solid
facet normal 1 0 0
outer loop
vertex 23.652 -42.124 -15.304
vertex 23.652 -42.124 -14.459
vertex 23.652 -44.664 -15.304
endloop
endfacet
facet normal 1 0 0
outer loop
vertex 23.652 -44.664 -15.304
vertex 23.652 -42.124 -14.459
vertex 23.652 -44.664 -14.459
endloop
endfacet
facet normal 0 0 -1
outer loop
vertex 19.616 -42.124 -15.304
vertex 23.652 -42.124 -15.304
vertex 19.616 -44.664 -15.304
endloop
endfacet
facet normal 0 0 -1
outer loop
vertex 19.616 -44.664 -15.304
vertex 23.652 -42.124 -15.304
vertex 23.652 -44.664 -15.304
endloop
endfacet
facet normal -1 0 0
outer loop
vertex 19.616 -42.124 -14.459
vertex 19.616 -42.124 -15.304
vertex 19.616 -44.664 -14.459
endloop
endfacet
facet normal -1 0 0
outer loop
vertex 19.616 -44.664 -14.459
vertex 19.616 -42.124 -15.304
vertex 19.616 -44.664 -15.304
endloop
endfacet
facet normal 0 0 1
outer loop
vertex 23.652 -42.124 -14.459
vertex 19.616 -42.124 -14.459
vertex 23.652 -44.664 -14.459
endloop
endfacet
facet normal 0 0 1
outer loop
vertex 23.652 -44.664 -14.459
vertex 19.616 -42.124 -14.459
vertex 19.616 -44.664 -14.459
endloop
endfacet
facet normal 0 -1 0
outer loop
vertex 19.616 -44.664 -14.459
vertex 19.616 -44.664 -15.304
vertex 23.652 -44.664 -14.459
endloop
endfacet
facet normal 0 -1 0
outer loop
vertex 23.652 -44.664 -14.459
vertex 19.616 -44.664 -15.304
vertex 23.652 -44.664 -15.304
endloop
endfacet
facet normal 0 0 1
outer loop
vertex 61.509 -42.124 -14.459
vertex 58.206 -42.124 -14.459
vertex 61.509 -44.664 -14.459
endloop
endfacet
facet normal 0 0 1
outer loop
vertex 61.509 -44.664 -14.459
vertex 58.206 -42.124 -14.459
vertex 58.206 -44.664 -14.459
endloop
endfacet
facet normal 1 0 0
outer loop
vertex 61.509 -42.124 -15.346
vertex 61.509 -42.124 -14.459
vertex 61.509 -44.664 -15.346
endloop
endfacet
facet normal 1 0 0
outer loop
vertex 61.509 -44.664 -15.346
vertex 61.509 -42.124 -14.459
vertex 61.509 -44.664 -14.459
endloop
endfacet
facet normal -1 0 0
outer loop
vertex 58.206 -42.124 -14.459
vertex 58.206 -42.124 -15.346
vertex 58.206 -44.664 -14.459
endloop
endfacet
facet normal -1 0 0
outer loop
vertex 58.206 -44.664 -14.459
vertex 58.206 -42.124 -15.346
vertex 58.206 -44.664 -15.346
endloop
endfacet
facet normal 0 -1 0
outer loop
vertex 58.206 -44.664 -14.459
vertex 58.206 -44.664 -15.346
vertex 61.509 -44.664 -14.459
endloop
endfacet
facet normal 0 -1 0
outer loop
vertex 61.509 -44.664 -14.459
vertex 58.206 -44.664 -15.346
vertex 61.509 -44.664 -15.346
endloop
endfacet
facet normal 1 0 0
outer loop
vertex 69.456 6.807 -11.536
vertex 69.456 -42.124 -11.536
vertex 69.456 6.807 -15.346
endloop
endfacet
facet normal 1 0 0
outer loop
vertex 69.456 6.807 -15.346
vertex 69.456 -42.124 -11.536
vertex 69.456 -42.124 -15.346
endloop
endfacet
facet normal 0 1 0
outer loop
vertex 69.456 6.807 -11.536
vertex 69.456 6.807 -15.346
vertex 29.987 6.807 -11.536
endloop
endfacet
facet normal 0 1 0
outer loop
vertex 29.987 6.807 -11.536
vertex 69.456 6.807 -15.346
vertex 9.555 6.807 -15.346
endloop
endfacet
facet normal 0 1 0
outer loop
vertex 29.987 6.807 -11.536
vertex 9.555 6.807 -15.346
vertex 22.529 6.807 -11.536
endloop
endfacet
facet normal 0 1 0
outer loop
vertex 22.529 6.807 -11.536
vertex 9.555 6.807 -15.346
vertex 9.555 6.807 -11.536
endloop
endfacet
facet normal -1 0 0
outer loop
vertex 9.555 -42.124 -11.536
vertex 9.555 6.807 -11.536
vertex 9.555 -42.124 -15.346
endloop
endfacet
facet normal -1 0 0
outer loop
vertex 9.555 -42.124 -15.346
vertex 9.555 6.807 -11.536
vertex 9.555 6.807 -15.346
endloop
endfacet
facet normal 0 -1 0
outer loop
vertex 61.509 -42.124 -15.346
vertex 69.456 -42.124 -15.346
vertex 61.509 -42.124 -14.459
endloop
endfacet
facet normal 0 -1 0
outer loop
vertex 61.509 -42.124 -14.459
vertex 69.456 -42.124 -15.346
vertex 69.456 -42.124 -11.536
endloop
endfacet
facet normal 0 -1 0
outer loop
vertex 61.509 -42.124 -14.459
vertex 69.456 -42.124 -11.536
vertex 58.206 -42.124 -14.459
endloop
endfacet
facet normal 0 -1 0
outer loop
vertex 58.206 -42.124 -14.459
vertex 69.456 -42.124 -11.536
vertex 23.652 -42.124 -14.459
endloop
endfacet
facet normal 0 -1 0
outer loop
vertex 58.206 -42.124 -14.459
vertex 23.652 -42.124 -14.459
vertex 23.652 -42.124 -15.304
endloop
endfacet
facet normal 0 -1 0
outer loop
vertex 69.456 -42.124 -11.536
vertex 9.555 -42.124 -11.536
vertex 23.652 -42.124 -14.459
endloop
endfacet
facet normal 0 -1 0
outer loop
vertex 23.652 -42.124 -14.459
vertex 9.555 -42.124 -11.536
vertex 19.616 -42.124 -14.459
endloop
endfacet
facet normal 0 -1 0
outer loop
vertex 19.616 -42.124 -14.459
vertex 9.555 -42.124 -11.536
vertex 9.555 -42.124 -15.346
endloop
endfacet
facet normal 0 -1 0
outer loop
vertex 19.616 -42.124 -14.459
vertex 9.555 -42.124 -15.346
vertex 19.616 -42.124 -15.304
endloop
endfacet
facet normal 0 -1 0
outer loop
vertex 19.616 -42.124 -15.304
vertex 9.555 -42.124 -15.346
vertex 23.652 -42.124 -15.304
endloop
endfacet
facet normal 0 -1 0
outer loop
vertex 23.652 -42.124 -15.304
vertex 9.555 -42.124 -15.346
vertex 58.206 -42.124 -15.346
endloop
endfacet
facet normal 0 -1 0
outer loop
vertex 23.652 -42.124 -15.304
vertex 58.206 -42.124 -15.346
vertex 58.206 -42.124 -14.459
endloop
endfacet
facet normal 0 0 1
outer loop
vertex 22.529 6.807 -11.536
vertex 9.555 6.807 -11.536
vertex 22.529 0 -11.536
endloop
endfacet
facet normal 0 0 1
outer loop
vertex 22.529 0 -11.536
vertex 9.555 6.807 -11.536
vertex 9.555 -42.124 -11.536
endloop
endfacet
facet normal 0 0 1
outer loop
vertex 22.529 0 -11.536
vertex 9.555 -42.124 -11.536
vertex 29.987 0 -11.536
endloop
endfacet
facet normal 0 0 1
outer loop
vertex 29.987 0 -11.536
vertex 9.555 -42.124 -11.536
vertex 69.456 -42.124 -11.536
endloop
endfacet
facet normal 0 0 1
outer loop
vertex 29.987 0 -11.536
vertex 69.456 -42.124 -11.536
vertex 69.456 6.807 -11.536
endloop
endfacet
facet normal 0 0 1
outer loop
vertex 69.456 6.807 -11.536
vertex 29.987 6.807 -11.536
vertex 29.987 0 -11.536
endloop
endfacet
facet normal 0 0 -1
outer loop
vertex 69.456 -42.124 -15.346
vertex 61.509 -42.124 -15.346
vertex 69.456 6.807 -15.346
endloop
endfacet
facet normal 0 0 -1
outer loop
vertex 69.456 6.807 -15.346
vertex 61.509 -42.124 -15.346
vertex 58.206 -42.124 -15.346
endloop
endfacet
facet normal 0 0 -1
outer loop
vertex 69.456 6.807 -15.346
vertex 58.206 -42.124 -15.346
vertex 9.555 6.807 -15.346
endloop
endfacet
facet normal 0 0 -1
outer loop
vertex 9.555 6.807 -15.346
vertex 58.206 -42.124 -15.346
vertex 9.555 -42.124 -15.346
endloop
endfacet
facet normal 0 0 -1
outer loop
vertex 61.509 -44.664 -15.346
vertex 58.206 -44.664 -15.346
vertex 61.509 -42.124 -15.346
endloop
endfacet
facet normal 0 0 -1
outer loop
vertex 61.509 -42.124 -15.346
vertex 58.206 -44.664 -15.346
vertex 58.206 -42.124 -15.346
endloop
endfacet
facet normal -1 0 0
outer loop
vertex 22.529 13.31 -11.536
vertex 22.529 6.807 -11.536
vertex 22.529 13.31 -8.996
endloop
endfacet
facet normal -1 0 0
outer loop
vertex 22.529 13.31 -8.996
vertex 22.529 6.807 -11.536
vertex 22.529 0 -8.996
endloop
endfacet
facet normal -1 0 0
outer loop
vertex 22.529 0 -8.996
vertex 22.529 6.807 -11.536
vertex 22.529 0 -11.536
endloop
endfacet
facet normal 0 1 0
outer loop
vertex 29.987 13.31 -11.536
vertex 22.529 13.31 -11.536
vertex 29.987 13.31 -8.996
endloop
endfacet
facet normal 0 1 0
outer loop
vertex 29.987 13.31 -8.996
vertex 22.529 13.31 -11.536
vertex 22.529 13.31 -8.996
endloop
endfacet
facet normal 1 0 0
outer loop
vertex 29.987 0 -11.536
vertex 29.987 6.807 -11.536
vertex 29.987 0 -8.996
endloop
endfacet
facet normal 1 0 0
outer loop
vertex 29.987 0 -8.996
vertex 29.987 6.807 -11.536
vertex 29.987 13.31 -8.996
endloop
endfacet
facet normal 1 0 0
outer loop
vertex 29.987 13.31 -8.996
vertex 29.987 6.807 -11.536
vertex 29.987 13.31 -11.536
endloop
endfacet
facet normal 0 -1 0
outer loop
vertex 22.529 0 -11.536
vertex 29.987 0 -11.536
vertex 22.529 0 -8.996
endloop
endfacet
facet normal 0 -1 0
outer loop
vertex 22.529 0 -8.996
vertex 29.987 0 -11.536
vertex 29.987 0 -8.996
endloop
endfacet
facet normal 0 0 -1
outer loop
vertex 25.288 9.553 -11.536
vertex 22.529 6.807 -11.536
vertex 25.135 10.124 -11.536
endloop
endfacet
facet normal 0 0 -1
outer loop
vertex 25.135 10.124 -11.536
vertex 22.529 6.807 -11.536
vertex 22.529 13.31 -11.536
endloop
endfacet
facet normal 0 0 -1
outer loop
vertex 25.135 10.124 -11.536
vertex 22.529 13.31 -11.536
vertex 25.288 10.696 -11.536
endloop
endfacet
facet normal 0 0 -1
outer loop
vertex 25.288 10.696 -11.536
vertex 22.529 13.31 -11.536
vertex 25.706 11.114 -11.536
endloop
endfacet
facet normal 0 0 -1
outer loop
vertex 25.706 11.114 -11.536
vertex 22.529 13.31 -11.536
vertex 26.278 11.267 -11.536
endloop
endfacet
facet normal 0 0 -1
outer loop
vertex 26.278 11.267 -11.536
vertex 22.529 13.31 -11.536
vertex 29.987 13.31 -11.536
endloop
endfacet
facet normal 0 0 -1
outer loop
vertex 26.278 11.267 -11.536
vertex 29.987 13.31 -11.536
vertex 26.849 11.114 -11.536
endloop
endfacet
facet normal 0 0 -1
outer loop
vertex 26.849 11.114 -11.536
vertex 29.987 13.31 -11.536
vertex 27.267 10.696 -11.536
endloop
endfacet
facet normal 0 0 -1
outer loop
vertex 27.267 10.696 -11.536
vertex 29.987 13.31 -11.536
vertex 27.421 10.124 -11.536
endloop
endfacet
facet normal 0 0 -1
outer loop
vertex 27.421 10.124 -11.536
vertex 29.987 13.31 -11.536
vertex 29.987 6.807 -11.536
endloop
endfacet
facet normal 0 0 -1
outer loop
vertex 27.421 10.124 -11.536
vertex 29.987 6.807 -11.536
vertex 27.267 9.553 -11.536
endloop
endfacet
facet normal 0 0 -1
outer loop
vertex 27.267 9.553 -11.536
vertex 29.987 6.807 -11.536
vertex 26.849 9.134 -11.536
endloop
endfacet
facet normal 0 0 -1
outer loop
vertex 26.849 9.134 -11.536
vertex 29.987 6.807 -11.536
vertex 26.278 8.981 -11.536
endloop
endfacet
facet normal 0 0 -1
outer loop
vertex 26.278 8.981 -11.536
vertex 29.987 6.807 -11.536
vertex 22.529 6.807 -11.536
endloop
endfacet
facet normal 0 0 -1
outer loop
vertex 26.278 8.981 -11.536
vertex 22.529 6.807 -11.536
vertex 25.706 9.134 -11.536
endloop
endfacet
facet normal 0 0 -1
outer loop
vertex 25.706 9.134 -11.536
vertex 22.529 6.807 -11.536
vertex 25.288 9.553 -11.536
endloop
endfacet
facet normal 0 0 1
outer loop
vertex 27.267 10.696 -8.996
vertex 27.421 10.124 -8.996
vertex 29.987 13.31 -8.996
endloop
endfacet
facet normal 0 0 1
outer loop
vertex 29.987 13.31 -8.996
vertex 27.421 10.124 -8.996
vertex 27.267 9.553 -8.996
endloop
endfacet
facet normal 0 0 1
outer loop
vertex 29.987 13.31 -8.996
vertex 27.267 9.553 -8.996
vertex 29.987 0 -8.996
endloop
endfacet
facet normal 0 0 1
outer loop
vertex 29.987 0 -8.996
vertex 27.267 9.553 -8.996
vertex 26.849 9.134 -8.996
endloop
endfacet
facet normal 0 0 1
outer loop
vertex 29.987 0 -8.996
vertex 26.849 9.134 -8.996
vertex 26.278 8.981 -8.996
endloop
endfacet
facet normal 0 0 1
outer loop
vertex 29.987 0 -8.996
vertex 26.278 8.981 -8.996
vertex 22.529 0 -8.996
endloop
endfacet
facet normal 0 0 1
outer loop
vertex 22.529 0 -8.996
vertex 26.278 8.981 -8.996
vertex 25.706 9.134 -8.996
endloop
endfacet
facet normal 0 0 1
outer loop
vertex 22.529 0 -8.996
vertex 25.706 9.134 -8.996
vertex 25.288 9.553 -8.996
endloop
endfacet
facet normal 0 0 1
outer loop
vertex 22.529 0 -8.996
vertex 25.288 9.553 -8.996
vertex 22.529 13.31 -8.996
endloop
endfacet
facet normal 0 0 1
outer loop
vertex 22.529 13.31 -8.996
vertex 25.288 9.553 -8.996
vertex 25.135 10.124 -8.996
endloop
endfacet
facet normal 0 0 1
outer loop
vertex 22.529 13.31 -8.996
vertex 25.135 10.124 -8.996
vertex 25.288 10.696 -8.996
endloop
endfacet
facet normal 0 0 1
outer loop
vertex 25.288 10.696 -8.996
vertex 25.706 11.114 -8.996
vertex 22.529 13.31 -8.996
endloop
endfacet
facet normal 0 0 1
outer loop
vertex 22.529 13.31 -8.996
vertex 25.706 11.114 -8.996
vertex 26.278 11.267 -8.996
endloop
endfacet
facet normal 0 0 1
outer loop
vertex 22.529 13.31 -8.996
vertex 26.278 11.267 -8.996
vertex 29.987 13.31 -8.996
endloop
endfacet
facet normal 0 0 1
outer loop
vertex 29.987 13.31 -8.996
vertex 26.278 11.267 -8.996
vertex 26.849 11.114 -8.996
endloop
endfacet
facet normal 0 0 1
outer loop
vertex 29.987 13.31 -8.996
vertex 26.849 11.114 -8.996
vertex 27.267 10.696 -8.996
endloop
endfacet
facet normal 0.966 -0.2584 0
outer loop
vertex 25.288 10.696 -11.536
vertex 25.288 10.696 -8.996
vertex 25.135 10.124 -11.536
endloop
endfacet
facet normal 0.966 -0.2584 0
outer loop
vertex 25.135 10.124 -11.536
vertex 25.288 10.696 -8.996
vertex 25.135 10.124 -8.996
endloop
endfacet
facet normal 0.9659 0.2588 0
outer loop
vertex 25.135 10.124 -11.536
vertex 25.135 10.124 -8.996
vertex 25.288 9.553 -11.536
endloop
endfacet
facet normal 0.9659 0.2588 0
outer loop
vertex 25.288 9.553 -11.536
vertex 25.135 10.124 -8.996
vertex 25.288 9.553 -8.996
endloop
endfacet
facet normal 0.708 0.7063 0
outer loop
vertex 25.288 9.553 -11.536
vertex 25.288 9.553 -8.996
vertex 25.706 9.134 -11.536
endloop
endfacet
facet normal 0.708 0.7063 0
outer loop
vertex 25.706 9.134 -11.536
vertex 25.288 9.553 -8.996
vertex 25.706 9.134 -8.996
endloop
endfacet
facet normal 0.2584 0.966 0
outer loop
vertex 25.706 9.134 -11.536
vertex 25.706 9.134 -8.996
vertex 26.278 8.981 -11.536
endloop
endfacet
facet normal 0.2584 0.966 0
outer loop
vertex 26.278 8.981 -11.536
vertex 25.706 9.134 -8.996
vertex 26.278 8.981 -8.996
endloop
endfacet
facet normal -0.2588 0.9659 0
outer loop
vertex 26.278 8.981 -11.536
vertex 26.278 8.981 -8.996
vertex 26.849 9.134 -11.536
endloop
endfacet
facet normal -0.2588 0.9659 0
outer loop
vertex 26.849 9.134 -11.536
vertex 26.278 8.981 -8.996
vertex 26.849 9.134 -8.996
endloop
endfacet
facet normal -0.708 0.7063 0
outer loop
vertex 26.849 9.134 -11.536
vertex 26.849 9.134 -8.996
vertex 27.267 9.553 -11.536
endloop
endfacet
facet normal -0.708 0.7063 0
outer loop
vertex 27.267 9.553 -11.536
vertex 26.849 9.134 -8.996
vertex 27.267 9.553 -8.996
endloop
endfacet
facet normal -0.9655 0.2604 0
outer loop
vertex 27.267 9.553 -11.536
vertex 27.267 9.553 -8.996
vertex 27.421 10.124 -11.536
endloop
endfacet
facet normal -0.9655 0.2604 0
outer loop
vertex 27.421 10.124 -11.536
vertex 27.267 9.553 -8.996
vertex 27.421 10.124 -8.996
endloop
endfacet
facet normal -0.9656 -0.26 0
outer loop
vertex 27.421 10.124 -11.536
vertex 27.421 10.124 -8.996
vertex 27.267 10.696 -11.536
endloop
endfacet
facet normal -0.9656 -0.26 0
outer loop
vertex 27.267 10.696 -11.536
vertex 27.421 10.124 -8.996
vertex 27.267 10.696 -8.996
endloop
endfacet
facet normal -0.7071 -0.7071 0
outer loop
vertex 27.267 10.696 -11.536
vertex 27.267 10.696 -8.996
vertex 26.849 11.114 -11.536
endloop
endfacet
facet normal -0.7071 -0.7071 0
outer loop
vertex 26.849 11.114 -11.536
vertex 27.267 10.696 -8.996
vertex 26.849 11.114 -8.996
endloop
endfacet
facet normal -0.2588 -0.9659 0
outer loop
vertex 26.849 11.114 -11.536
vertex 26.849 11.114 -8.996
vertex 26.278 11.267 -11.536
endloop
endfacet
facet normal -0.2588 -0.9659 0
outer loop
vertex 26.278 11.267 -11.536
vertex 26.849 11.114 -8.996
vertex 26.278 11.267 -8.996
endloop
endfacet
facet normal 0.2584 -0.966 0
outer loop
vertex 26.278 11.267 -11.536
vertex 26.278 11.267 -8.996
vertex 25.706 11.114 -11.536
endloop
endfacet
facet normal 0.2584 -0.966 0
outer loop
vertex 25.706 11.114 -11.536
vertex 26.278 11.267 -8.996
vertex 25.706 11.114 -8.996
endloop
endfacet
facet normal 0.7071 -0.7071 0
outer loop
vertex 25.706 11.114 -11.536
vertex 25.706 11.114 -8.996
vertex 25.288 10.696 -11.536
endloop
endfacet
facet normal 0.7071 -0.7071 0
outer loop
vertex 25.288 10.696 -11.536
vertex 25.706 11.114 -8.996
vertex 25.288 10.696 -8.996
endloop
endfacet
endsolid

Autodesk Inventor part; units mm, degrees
ref_plane "YZ Plane" through (0, 0, 0) normal (1, 0, 0) x (0, 1, 0)
ref_plane "XZ Plane" through (0, 0, 0) normal (0, 1, 0) x (-1, 0, 0)
ref_plane "XY Plane" through (0, 0, 0) normal (0, 0, 1) x (1, 0, 0)
ref_plane "Work Plane6" through (39.7008, -57.1298, -11.5364) normal (0, 0, 1) x (1, 0, 0)
sketch "Sketch1" plane through (39.7008, -57.1298, -11.5364) normal (0, 0, 1) x (1, 0, 0)
  line L0 (-30.146, 63.9369) -> (29.7552, 63.9369)
  line L1 (29.7552, 63.9369) -> (29.7552, 15.006)
  line L2 (29.7552, 15.006) -> (-30.146, 15.006)
  line L3 (-30.146, 15.006) -> (-30.146, 63.9369)
  point P0 (-39.7008, 57.1298)
extrude "Extrusion1" add sketch "Sketch1" against normal blind 3.81
ref_plane "Work Plane5" through (9.5547, -42.1238, -11.5364) normal (0, -1, 0) x (1, 0, 0)
sketch "Sketch4" plane through (9.5547, -42.1238, -11.5364) normal (0, -1, 0) x (1, 0, 0)
  line L0 (59.9013, -3.81) -> (0, -3.81) projected
  line L1 (51.9539, -3.81) -> (48.6512, -3.81)
  line L2 (48.6512, -3.81) -> (48.6512, -2.9224)
  line L3 (48.6512, -2.9224) -> (51.9539, -2.9224)
  line L4 (51.9539, -2.9224) -> (51.9539, -3.81)
  line L5 (14.0976, -3.7678) -> (10.0617, -3.7678)
  line L6 (10.0617, -3.7678) -> (10.0617, -2.9224)
  line L7 (10.0617, -2.9224) -> (14.0976, -2.9224)
  line L8 (14.0976, -2.9224) -> (14.0976, -3.7678)
  point P0 (-9.5547, 11.5364)
  point P1 (48.6512, -3.81)
extrude "Extrusion2" add sketch "Sketch4" along normal blind 2.54
sketch "Sketch5" plane through (39.7008, -57.1298, -11.5364) normal (0, 0, 1) x (1, 0, 0)
  line L0 (-17.172, 70.4399) -> (-9.7142, 70.4399)
  line L1 (-9.7142, 70.4399) -> (-9.7142, 57.1298)
  line L2 (-9.7142, 57.1298) -> (-17.172, 57.1298)
  line L3 (-17.172, 57.1298) -> (-17.172, 70.4399)
  point P0 (-39.7008, 57.1298)
extrude "Extrusion3" add sketch "Sketch5" along normal blind 2.54
sketch "Sketch6" plane through (39.7008, -57.1298, -8.9964) normal (0, 0, 1) x (1, 0, 0)
  point P0 (-39.7008, 57.1298)
  point P1 (-13.4232, 67.2539)
hole "Hole1" at (26.2775, 10.1241, -8.9964) direction (0, 0, -1) diameter 2.286 end through all
properties part number "batteryFlap"
